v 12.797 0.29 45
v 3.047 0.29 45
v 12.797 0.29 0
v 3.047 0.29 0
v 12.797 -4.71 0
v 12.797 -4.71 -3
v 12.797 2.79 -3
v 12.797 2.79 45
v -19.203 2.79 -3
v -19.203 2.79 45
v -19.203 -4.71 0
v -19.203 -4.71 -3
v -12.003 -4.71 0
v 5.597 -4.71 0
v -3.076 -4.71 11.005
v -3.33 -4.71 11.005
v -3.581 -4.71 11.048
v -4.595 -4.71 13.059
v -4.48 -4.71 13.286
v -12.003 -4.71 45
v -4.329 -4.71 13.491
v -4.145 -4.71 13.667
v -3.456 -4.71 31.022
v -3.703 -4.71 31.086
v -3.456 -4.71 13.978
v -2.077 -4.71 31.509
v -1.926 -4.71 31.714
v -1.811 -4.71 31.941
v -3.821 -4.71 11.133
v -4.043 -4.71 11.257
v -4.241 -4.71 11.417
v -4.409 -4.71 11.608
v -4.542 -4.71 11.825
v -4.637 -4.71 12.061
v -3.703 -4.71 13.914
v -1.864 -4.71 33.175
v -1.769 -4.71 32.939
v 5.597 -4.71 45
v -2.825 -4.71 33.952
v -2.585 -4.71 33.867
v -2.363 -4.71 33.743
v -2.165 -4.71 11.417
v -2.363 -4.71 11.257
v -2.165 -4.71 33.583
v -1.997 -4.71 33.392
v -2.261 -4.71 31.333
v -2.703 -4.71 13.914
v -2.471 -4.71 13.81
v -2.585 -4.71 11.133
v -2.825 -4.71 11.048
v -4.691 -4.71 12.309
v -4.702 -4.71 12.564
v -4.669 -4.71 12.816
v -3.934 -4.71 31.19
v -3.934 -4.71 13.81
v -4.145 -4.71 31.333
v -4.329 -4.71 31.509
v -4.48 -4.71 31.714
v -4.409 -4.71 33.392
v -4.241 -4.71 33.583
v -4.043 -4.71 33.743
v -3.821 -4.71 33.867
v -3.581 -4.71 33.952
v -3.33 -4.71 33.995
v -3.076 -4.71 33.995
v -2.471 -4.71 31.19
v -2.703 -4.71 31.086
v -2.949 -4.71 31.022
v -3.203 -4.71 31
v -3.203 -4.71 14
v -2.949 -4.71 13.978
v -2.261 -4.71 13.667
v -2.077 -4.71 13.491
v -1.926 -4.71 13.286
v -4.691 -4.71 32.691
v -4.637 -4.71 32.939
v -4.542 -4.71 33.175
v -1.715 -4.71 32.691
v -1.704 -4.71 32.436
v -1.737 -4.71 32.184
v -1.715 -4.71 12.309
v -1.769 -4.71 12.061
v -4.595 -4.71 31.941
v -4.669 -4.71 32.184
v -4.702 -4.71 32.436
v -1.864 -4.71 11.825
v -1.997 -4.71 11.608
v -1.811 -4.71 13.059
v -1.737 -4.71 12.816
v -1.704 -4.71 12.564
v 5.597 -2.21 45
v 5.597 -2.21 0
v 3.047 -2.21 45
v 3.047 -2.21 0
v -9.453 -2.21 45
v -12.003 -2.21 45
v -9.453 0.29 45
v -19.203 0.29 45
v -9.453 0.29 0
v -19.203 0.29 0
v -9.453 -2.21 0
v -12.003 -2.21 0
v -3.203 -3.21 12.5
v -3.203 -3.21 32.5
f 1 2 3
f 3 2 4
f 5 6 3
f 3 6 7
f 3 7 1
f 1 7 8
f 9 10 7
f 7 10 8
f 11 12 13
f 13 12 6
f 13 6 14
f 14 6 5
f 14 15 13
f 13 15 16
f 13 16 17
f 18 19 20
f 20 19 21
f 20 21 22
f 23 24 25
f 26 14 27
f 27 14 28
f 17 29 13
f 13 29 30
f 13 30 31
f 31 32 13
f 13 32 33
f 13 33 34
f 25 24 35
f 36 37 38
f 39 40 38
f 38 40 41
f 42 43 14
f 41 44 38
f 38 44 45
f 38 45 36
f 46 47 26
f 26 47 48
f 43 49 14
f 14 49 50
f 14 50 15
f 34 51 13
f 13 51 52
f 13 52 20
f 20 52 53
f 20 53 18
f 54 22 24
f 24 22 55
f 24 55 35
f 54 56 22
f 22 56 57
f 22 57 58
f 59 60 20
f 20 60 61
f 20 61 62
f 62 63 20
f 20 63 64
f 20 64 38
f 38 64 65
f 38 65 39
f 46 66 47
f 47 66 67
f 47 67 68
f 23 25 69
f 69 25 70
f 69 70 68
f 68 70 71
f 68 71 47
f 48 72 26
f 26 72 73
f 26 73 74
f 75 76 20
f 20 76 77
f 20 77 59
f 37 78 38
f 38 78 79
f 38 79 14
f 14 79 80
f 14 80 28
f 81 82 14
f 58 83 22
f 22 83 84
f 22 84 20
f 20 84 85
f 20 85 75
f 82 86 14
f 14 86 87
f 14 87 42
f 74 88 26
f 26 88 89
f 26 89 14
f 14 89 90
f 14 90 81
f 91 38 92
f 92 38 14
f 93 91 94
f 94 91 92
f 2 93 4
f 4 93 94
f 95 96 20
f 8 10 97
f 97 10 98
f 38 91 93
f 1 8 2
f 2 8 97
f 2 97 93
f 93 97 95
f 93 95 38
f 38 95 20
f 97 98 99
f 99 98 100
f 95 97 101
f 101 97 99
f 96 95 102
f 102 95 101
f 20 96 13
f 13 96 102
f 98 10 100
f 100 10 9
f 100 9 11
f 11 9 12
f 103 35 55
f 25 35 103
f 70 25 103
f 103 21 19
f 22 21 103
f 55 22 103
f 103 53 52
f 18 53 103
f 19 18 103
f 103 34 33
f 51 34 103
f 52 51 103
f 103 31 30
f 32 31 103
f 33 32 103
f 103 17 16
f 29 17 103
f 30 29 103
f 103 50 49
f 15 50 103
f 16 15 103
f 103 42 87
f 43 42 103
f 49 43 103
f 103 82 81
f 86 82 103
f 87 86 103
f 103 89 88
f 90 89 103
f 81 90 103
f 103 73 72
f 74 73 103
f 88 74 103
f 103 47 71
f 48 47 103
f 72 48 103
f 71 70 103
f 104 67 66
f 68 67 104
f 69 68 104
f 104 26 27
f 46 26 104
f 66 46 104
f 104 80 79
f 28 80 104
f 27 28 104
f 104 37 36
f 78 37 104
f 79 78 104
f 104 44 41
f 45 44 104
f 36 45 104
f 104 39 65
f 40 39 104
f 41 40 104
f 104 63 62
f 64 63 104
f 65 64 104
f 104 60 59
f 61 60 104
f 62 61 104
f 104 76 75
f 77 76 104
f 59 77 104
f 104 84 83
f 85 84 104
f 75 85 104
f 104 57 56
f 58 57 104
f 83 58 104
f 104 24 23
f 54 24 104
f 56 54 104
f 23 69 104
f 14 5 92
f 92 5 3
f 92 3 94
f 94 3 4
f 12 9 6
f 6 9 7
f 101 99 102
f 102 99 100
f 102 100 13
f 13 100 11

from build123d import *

# Parameters (mm, degrees)
SKETCH1_W           = 6.25
SKETCH1_H           = 2.5
SKETCH1_W_2         = 8.8
BOSS_EXTRUDE1_DEPTH = 45
SKETCH9_W           = 32
SKETCH9_H           = 7.5
BOSS_EXTRUDE3_DEPTH = 3


with BuildPart() as part:
    # Sketch1 → Boss-Extrude1 (new body)
    with BuildSketch(Plane.XY):
        Polygon((-3.202898551, 2.789855072), (-3.202898551, 0.289855072), (3.047101449, 0.289855072), (12.797101449, 0.289855072), (12.797101449, 2.789855072), align=None)
        with Locations((-0.077898551, -0.960144928)):
            Rectangle(SKETCH1_W, SKETCH1_H)
        with Locations((1.197101449, -3.460144928)):
            Rectangle(SKETCH1_W_2, SKETCH1_H)
    boss_extrude1 = extrude(amount=BOSS_EXTRUDE1_DEPTH)

    # Mirror1: Boss-Extrude1 across plane
    add(boss_extrude1.mirror(Plane(origin=(-3.202898551, 0, 45), x_dir=(0, 0, 1), z_dir=(-1, 0, 0))))

    # Cut-Extrude2 cone 1 section (through the dimple's axis) → Cut-Extrude2 (revolve, cut)
    with BuildSketch(Plane(origin=(-3.202898551, -4.710144928, 32.5), x_dir=(0, 0, -1), z_dir=(1, 0, 0))):
        Polygon((0, 0), (1.5, 0), (0, 1.5), align=None)
    revolve(axis=Axis((-3.202898551, -4.710144928, 32.5), (0, 1, 0)), mode=Mode.SUBTRACT)

    # Cut-Extrude2 cone 2 section (through the dimple's axis) → Cut-Extrude2 cone 2 (revolve, cut)
    with BuildSketch(Plane(origin=(-3.202898551, -4.710144928, 12.5), x_dir=(0, 0, -1), z_dir=(1, 0, 0))):
        Polygon((0, 0), (1.5, 0), (0, 1.5), align=None)
    revolve(axis=Axis((-3.202898551, -4.710144928, 12.5), (0, 1, 0)), mode=Mode.SUBTRACT)

    # Sketch9 → Boss-Extrude3 (add)
    with BuildSketch(Plane(origin=(0, 0, 0), x_dir=(-1, 0, 0), z_dir=(0, 0, -1))):
        with Locations((3.202898551, -0.960144928)):
            Rectangle(SKETCH9_W, SKETCH9_H)
    extrude(amount=BOSS_EXTRUDE3_DEPTH)


solid = part.part
